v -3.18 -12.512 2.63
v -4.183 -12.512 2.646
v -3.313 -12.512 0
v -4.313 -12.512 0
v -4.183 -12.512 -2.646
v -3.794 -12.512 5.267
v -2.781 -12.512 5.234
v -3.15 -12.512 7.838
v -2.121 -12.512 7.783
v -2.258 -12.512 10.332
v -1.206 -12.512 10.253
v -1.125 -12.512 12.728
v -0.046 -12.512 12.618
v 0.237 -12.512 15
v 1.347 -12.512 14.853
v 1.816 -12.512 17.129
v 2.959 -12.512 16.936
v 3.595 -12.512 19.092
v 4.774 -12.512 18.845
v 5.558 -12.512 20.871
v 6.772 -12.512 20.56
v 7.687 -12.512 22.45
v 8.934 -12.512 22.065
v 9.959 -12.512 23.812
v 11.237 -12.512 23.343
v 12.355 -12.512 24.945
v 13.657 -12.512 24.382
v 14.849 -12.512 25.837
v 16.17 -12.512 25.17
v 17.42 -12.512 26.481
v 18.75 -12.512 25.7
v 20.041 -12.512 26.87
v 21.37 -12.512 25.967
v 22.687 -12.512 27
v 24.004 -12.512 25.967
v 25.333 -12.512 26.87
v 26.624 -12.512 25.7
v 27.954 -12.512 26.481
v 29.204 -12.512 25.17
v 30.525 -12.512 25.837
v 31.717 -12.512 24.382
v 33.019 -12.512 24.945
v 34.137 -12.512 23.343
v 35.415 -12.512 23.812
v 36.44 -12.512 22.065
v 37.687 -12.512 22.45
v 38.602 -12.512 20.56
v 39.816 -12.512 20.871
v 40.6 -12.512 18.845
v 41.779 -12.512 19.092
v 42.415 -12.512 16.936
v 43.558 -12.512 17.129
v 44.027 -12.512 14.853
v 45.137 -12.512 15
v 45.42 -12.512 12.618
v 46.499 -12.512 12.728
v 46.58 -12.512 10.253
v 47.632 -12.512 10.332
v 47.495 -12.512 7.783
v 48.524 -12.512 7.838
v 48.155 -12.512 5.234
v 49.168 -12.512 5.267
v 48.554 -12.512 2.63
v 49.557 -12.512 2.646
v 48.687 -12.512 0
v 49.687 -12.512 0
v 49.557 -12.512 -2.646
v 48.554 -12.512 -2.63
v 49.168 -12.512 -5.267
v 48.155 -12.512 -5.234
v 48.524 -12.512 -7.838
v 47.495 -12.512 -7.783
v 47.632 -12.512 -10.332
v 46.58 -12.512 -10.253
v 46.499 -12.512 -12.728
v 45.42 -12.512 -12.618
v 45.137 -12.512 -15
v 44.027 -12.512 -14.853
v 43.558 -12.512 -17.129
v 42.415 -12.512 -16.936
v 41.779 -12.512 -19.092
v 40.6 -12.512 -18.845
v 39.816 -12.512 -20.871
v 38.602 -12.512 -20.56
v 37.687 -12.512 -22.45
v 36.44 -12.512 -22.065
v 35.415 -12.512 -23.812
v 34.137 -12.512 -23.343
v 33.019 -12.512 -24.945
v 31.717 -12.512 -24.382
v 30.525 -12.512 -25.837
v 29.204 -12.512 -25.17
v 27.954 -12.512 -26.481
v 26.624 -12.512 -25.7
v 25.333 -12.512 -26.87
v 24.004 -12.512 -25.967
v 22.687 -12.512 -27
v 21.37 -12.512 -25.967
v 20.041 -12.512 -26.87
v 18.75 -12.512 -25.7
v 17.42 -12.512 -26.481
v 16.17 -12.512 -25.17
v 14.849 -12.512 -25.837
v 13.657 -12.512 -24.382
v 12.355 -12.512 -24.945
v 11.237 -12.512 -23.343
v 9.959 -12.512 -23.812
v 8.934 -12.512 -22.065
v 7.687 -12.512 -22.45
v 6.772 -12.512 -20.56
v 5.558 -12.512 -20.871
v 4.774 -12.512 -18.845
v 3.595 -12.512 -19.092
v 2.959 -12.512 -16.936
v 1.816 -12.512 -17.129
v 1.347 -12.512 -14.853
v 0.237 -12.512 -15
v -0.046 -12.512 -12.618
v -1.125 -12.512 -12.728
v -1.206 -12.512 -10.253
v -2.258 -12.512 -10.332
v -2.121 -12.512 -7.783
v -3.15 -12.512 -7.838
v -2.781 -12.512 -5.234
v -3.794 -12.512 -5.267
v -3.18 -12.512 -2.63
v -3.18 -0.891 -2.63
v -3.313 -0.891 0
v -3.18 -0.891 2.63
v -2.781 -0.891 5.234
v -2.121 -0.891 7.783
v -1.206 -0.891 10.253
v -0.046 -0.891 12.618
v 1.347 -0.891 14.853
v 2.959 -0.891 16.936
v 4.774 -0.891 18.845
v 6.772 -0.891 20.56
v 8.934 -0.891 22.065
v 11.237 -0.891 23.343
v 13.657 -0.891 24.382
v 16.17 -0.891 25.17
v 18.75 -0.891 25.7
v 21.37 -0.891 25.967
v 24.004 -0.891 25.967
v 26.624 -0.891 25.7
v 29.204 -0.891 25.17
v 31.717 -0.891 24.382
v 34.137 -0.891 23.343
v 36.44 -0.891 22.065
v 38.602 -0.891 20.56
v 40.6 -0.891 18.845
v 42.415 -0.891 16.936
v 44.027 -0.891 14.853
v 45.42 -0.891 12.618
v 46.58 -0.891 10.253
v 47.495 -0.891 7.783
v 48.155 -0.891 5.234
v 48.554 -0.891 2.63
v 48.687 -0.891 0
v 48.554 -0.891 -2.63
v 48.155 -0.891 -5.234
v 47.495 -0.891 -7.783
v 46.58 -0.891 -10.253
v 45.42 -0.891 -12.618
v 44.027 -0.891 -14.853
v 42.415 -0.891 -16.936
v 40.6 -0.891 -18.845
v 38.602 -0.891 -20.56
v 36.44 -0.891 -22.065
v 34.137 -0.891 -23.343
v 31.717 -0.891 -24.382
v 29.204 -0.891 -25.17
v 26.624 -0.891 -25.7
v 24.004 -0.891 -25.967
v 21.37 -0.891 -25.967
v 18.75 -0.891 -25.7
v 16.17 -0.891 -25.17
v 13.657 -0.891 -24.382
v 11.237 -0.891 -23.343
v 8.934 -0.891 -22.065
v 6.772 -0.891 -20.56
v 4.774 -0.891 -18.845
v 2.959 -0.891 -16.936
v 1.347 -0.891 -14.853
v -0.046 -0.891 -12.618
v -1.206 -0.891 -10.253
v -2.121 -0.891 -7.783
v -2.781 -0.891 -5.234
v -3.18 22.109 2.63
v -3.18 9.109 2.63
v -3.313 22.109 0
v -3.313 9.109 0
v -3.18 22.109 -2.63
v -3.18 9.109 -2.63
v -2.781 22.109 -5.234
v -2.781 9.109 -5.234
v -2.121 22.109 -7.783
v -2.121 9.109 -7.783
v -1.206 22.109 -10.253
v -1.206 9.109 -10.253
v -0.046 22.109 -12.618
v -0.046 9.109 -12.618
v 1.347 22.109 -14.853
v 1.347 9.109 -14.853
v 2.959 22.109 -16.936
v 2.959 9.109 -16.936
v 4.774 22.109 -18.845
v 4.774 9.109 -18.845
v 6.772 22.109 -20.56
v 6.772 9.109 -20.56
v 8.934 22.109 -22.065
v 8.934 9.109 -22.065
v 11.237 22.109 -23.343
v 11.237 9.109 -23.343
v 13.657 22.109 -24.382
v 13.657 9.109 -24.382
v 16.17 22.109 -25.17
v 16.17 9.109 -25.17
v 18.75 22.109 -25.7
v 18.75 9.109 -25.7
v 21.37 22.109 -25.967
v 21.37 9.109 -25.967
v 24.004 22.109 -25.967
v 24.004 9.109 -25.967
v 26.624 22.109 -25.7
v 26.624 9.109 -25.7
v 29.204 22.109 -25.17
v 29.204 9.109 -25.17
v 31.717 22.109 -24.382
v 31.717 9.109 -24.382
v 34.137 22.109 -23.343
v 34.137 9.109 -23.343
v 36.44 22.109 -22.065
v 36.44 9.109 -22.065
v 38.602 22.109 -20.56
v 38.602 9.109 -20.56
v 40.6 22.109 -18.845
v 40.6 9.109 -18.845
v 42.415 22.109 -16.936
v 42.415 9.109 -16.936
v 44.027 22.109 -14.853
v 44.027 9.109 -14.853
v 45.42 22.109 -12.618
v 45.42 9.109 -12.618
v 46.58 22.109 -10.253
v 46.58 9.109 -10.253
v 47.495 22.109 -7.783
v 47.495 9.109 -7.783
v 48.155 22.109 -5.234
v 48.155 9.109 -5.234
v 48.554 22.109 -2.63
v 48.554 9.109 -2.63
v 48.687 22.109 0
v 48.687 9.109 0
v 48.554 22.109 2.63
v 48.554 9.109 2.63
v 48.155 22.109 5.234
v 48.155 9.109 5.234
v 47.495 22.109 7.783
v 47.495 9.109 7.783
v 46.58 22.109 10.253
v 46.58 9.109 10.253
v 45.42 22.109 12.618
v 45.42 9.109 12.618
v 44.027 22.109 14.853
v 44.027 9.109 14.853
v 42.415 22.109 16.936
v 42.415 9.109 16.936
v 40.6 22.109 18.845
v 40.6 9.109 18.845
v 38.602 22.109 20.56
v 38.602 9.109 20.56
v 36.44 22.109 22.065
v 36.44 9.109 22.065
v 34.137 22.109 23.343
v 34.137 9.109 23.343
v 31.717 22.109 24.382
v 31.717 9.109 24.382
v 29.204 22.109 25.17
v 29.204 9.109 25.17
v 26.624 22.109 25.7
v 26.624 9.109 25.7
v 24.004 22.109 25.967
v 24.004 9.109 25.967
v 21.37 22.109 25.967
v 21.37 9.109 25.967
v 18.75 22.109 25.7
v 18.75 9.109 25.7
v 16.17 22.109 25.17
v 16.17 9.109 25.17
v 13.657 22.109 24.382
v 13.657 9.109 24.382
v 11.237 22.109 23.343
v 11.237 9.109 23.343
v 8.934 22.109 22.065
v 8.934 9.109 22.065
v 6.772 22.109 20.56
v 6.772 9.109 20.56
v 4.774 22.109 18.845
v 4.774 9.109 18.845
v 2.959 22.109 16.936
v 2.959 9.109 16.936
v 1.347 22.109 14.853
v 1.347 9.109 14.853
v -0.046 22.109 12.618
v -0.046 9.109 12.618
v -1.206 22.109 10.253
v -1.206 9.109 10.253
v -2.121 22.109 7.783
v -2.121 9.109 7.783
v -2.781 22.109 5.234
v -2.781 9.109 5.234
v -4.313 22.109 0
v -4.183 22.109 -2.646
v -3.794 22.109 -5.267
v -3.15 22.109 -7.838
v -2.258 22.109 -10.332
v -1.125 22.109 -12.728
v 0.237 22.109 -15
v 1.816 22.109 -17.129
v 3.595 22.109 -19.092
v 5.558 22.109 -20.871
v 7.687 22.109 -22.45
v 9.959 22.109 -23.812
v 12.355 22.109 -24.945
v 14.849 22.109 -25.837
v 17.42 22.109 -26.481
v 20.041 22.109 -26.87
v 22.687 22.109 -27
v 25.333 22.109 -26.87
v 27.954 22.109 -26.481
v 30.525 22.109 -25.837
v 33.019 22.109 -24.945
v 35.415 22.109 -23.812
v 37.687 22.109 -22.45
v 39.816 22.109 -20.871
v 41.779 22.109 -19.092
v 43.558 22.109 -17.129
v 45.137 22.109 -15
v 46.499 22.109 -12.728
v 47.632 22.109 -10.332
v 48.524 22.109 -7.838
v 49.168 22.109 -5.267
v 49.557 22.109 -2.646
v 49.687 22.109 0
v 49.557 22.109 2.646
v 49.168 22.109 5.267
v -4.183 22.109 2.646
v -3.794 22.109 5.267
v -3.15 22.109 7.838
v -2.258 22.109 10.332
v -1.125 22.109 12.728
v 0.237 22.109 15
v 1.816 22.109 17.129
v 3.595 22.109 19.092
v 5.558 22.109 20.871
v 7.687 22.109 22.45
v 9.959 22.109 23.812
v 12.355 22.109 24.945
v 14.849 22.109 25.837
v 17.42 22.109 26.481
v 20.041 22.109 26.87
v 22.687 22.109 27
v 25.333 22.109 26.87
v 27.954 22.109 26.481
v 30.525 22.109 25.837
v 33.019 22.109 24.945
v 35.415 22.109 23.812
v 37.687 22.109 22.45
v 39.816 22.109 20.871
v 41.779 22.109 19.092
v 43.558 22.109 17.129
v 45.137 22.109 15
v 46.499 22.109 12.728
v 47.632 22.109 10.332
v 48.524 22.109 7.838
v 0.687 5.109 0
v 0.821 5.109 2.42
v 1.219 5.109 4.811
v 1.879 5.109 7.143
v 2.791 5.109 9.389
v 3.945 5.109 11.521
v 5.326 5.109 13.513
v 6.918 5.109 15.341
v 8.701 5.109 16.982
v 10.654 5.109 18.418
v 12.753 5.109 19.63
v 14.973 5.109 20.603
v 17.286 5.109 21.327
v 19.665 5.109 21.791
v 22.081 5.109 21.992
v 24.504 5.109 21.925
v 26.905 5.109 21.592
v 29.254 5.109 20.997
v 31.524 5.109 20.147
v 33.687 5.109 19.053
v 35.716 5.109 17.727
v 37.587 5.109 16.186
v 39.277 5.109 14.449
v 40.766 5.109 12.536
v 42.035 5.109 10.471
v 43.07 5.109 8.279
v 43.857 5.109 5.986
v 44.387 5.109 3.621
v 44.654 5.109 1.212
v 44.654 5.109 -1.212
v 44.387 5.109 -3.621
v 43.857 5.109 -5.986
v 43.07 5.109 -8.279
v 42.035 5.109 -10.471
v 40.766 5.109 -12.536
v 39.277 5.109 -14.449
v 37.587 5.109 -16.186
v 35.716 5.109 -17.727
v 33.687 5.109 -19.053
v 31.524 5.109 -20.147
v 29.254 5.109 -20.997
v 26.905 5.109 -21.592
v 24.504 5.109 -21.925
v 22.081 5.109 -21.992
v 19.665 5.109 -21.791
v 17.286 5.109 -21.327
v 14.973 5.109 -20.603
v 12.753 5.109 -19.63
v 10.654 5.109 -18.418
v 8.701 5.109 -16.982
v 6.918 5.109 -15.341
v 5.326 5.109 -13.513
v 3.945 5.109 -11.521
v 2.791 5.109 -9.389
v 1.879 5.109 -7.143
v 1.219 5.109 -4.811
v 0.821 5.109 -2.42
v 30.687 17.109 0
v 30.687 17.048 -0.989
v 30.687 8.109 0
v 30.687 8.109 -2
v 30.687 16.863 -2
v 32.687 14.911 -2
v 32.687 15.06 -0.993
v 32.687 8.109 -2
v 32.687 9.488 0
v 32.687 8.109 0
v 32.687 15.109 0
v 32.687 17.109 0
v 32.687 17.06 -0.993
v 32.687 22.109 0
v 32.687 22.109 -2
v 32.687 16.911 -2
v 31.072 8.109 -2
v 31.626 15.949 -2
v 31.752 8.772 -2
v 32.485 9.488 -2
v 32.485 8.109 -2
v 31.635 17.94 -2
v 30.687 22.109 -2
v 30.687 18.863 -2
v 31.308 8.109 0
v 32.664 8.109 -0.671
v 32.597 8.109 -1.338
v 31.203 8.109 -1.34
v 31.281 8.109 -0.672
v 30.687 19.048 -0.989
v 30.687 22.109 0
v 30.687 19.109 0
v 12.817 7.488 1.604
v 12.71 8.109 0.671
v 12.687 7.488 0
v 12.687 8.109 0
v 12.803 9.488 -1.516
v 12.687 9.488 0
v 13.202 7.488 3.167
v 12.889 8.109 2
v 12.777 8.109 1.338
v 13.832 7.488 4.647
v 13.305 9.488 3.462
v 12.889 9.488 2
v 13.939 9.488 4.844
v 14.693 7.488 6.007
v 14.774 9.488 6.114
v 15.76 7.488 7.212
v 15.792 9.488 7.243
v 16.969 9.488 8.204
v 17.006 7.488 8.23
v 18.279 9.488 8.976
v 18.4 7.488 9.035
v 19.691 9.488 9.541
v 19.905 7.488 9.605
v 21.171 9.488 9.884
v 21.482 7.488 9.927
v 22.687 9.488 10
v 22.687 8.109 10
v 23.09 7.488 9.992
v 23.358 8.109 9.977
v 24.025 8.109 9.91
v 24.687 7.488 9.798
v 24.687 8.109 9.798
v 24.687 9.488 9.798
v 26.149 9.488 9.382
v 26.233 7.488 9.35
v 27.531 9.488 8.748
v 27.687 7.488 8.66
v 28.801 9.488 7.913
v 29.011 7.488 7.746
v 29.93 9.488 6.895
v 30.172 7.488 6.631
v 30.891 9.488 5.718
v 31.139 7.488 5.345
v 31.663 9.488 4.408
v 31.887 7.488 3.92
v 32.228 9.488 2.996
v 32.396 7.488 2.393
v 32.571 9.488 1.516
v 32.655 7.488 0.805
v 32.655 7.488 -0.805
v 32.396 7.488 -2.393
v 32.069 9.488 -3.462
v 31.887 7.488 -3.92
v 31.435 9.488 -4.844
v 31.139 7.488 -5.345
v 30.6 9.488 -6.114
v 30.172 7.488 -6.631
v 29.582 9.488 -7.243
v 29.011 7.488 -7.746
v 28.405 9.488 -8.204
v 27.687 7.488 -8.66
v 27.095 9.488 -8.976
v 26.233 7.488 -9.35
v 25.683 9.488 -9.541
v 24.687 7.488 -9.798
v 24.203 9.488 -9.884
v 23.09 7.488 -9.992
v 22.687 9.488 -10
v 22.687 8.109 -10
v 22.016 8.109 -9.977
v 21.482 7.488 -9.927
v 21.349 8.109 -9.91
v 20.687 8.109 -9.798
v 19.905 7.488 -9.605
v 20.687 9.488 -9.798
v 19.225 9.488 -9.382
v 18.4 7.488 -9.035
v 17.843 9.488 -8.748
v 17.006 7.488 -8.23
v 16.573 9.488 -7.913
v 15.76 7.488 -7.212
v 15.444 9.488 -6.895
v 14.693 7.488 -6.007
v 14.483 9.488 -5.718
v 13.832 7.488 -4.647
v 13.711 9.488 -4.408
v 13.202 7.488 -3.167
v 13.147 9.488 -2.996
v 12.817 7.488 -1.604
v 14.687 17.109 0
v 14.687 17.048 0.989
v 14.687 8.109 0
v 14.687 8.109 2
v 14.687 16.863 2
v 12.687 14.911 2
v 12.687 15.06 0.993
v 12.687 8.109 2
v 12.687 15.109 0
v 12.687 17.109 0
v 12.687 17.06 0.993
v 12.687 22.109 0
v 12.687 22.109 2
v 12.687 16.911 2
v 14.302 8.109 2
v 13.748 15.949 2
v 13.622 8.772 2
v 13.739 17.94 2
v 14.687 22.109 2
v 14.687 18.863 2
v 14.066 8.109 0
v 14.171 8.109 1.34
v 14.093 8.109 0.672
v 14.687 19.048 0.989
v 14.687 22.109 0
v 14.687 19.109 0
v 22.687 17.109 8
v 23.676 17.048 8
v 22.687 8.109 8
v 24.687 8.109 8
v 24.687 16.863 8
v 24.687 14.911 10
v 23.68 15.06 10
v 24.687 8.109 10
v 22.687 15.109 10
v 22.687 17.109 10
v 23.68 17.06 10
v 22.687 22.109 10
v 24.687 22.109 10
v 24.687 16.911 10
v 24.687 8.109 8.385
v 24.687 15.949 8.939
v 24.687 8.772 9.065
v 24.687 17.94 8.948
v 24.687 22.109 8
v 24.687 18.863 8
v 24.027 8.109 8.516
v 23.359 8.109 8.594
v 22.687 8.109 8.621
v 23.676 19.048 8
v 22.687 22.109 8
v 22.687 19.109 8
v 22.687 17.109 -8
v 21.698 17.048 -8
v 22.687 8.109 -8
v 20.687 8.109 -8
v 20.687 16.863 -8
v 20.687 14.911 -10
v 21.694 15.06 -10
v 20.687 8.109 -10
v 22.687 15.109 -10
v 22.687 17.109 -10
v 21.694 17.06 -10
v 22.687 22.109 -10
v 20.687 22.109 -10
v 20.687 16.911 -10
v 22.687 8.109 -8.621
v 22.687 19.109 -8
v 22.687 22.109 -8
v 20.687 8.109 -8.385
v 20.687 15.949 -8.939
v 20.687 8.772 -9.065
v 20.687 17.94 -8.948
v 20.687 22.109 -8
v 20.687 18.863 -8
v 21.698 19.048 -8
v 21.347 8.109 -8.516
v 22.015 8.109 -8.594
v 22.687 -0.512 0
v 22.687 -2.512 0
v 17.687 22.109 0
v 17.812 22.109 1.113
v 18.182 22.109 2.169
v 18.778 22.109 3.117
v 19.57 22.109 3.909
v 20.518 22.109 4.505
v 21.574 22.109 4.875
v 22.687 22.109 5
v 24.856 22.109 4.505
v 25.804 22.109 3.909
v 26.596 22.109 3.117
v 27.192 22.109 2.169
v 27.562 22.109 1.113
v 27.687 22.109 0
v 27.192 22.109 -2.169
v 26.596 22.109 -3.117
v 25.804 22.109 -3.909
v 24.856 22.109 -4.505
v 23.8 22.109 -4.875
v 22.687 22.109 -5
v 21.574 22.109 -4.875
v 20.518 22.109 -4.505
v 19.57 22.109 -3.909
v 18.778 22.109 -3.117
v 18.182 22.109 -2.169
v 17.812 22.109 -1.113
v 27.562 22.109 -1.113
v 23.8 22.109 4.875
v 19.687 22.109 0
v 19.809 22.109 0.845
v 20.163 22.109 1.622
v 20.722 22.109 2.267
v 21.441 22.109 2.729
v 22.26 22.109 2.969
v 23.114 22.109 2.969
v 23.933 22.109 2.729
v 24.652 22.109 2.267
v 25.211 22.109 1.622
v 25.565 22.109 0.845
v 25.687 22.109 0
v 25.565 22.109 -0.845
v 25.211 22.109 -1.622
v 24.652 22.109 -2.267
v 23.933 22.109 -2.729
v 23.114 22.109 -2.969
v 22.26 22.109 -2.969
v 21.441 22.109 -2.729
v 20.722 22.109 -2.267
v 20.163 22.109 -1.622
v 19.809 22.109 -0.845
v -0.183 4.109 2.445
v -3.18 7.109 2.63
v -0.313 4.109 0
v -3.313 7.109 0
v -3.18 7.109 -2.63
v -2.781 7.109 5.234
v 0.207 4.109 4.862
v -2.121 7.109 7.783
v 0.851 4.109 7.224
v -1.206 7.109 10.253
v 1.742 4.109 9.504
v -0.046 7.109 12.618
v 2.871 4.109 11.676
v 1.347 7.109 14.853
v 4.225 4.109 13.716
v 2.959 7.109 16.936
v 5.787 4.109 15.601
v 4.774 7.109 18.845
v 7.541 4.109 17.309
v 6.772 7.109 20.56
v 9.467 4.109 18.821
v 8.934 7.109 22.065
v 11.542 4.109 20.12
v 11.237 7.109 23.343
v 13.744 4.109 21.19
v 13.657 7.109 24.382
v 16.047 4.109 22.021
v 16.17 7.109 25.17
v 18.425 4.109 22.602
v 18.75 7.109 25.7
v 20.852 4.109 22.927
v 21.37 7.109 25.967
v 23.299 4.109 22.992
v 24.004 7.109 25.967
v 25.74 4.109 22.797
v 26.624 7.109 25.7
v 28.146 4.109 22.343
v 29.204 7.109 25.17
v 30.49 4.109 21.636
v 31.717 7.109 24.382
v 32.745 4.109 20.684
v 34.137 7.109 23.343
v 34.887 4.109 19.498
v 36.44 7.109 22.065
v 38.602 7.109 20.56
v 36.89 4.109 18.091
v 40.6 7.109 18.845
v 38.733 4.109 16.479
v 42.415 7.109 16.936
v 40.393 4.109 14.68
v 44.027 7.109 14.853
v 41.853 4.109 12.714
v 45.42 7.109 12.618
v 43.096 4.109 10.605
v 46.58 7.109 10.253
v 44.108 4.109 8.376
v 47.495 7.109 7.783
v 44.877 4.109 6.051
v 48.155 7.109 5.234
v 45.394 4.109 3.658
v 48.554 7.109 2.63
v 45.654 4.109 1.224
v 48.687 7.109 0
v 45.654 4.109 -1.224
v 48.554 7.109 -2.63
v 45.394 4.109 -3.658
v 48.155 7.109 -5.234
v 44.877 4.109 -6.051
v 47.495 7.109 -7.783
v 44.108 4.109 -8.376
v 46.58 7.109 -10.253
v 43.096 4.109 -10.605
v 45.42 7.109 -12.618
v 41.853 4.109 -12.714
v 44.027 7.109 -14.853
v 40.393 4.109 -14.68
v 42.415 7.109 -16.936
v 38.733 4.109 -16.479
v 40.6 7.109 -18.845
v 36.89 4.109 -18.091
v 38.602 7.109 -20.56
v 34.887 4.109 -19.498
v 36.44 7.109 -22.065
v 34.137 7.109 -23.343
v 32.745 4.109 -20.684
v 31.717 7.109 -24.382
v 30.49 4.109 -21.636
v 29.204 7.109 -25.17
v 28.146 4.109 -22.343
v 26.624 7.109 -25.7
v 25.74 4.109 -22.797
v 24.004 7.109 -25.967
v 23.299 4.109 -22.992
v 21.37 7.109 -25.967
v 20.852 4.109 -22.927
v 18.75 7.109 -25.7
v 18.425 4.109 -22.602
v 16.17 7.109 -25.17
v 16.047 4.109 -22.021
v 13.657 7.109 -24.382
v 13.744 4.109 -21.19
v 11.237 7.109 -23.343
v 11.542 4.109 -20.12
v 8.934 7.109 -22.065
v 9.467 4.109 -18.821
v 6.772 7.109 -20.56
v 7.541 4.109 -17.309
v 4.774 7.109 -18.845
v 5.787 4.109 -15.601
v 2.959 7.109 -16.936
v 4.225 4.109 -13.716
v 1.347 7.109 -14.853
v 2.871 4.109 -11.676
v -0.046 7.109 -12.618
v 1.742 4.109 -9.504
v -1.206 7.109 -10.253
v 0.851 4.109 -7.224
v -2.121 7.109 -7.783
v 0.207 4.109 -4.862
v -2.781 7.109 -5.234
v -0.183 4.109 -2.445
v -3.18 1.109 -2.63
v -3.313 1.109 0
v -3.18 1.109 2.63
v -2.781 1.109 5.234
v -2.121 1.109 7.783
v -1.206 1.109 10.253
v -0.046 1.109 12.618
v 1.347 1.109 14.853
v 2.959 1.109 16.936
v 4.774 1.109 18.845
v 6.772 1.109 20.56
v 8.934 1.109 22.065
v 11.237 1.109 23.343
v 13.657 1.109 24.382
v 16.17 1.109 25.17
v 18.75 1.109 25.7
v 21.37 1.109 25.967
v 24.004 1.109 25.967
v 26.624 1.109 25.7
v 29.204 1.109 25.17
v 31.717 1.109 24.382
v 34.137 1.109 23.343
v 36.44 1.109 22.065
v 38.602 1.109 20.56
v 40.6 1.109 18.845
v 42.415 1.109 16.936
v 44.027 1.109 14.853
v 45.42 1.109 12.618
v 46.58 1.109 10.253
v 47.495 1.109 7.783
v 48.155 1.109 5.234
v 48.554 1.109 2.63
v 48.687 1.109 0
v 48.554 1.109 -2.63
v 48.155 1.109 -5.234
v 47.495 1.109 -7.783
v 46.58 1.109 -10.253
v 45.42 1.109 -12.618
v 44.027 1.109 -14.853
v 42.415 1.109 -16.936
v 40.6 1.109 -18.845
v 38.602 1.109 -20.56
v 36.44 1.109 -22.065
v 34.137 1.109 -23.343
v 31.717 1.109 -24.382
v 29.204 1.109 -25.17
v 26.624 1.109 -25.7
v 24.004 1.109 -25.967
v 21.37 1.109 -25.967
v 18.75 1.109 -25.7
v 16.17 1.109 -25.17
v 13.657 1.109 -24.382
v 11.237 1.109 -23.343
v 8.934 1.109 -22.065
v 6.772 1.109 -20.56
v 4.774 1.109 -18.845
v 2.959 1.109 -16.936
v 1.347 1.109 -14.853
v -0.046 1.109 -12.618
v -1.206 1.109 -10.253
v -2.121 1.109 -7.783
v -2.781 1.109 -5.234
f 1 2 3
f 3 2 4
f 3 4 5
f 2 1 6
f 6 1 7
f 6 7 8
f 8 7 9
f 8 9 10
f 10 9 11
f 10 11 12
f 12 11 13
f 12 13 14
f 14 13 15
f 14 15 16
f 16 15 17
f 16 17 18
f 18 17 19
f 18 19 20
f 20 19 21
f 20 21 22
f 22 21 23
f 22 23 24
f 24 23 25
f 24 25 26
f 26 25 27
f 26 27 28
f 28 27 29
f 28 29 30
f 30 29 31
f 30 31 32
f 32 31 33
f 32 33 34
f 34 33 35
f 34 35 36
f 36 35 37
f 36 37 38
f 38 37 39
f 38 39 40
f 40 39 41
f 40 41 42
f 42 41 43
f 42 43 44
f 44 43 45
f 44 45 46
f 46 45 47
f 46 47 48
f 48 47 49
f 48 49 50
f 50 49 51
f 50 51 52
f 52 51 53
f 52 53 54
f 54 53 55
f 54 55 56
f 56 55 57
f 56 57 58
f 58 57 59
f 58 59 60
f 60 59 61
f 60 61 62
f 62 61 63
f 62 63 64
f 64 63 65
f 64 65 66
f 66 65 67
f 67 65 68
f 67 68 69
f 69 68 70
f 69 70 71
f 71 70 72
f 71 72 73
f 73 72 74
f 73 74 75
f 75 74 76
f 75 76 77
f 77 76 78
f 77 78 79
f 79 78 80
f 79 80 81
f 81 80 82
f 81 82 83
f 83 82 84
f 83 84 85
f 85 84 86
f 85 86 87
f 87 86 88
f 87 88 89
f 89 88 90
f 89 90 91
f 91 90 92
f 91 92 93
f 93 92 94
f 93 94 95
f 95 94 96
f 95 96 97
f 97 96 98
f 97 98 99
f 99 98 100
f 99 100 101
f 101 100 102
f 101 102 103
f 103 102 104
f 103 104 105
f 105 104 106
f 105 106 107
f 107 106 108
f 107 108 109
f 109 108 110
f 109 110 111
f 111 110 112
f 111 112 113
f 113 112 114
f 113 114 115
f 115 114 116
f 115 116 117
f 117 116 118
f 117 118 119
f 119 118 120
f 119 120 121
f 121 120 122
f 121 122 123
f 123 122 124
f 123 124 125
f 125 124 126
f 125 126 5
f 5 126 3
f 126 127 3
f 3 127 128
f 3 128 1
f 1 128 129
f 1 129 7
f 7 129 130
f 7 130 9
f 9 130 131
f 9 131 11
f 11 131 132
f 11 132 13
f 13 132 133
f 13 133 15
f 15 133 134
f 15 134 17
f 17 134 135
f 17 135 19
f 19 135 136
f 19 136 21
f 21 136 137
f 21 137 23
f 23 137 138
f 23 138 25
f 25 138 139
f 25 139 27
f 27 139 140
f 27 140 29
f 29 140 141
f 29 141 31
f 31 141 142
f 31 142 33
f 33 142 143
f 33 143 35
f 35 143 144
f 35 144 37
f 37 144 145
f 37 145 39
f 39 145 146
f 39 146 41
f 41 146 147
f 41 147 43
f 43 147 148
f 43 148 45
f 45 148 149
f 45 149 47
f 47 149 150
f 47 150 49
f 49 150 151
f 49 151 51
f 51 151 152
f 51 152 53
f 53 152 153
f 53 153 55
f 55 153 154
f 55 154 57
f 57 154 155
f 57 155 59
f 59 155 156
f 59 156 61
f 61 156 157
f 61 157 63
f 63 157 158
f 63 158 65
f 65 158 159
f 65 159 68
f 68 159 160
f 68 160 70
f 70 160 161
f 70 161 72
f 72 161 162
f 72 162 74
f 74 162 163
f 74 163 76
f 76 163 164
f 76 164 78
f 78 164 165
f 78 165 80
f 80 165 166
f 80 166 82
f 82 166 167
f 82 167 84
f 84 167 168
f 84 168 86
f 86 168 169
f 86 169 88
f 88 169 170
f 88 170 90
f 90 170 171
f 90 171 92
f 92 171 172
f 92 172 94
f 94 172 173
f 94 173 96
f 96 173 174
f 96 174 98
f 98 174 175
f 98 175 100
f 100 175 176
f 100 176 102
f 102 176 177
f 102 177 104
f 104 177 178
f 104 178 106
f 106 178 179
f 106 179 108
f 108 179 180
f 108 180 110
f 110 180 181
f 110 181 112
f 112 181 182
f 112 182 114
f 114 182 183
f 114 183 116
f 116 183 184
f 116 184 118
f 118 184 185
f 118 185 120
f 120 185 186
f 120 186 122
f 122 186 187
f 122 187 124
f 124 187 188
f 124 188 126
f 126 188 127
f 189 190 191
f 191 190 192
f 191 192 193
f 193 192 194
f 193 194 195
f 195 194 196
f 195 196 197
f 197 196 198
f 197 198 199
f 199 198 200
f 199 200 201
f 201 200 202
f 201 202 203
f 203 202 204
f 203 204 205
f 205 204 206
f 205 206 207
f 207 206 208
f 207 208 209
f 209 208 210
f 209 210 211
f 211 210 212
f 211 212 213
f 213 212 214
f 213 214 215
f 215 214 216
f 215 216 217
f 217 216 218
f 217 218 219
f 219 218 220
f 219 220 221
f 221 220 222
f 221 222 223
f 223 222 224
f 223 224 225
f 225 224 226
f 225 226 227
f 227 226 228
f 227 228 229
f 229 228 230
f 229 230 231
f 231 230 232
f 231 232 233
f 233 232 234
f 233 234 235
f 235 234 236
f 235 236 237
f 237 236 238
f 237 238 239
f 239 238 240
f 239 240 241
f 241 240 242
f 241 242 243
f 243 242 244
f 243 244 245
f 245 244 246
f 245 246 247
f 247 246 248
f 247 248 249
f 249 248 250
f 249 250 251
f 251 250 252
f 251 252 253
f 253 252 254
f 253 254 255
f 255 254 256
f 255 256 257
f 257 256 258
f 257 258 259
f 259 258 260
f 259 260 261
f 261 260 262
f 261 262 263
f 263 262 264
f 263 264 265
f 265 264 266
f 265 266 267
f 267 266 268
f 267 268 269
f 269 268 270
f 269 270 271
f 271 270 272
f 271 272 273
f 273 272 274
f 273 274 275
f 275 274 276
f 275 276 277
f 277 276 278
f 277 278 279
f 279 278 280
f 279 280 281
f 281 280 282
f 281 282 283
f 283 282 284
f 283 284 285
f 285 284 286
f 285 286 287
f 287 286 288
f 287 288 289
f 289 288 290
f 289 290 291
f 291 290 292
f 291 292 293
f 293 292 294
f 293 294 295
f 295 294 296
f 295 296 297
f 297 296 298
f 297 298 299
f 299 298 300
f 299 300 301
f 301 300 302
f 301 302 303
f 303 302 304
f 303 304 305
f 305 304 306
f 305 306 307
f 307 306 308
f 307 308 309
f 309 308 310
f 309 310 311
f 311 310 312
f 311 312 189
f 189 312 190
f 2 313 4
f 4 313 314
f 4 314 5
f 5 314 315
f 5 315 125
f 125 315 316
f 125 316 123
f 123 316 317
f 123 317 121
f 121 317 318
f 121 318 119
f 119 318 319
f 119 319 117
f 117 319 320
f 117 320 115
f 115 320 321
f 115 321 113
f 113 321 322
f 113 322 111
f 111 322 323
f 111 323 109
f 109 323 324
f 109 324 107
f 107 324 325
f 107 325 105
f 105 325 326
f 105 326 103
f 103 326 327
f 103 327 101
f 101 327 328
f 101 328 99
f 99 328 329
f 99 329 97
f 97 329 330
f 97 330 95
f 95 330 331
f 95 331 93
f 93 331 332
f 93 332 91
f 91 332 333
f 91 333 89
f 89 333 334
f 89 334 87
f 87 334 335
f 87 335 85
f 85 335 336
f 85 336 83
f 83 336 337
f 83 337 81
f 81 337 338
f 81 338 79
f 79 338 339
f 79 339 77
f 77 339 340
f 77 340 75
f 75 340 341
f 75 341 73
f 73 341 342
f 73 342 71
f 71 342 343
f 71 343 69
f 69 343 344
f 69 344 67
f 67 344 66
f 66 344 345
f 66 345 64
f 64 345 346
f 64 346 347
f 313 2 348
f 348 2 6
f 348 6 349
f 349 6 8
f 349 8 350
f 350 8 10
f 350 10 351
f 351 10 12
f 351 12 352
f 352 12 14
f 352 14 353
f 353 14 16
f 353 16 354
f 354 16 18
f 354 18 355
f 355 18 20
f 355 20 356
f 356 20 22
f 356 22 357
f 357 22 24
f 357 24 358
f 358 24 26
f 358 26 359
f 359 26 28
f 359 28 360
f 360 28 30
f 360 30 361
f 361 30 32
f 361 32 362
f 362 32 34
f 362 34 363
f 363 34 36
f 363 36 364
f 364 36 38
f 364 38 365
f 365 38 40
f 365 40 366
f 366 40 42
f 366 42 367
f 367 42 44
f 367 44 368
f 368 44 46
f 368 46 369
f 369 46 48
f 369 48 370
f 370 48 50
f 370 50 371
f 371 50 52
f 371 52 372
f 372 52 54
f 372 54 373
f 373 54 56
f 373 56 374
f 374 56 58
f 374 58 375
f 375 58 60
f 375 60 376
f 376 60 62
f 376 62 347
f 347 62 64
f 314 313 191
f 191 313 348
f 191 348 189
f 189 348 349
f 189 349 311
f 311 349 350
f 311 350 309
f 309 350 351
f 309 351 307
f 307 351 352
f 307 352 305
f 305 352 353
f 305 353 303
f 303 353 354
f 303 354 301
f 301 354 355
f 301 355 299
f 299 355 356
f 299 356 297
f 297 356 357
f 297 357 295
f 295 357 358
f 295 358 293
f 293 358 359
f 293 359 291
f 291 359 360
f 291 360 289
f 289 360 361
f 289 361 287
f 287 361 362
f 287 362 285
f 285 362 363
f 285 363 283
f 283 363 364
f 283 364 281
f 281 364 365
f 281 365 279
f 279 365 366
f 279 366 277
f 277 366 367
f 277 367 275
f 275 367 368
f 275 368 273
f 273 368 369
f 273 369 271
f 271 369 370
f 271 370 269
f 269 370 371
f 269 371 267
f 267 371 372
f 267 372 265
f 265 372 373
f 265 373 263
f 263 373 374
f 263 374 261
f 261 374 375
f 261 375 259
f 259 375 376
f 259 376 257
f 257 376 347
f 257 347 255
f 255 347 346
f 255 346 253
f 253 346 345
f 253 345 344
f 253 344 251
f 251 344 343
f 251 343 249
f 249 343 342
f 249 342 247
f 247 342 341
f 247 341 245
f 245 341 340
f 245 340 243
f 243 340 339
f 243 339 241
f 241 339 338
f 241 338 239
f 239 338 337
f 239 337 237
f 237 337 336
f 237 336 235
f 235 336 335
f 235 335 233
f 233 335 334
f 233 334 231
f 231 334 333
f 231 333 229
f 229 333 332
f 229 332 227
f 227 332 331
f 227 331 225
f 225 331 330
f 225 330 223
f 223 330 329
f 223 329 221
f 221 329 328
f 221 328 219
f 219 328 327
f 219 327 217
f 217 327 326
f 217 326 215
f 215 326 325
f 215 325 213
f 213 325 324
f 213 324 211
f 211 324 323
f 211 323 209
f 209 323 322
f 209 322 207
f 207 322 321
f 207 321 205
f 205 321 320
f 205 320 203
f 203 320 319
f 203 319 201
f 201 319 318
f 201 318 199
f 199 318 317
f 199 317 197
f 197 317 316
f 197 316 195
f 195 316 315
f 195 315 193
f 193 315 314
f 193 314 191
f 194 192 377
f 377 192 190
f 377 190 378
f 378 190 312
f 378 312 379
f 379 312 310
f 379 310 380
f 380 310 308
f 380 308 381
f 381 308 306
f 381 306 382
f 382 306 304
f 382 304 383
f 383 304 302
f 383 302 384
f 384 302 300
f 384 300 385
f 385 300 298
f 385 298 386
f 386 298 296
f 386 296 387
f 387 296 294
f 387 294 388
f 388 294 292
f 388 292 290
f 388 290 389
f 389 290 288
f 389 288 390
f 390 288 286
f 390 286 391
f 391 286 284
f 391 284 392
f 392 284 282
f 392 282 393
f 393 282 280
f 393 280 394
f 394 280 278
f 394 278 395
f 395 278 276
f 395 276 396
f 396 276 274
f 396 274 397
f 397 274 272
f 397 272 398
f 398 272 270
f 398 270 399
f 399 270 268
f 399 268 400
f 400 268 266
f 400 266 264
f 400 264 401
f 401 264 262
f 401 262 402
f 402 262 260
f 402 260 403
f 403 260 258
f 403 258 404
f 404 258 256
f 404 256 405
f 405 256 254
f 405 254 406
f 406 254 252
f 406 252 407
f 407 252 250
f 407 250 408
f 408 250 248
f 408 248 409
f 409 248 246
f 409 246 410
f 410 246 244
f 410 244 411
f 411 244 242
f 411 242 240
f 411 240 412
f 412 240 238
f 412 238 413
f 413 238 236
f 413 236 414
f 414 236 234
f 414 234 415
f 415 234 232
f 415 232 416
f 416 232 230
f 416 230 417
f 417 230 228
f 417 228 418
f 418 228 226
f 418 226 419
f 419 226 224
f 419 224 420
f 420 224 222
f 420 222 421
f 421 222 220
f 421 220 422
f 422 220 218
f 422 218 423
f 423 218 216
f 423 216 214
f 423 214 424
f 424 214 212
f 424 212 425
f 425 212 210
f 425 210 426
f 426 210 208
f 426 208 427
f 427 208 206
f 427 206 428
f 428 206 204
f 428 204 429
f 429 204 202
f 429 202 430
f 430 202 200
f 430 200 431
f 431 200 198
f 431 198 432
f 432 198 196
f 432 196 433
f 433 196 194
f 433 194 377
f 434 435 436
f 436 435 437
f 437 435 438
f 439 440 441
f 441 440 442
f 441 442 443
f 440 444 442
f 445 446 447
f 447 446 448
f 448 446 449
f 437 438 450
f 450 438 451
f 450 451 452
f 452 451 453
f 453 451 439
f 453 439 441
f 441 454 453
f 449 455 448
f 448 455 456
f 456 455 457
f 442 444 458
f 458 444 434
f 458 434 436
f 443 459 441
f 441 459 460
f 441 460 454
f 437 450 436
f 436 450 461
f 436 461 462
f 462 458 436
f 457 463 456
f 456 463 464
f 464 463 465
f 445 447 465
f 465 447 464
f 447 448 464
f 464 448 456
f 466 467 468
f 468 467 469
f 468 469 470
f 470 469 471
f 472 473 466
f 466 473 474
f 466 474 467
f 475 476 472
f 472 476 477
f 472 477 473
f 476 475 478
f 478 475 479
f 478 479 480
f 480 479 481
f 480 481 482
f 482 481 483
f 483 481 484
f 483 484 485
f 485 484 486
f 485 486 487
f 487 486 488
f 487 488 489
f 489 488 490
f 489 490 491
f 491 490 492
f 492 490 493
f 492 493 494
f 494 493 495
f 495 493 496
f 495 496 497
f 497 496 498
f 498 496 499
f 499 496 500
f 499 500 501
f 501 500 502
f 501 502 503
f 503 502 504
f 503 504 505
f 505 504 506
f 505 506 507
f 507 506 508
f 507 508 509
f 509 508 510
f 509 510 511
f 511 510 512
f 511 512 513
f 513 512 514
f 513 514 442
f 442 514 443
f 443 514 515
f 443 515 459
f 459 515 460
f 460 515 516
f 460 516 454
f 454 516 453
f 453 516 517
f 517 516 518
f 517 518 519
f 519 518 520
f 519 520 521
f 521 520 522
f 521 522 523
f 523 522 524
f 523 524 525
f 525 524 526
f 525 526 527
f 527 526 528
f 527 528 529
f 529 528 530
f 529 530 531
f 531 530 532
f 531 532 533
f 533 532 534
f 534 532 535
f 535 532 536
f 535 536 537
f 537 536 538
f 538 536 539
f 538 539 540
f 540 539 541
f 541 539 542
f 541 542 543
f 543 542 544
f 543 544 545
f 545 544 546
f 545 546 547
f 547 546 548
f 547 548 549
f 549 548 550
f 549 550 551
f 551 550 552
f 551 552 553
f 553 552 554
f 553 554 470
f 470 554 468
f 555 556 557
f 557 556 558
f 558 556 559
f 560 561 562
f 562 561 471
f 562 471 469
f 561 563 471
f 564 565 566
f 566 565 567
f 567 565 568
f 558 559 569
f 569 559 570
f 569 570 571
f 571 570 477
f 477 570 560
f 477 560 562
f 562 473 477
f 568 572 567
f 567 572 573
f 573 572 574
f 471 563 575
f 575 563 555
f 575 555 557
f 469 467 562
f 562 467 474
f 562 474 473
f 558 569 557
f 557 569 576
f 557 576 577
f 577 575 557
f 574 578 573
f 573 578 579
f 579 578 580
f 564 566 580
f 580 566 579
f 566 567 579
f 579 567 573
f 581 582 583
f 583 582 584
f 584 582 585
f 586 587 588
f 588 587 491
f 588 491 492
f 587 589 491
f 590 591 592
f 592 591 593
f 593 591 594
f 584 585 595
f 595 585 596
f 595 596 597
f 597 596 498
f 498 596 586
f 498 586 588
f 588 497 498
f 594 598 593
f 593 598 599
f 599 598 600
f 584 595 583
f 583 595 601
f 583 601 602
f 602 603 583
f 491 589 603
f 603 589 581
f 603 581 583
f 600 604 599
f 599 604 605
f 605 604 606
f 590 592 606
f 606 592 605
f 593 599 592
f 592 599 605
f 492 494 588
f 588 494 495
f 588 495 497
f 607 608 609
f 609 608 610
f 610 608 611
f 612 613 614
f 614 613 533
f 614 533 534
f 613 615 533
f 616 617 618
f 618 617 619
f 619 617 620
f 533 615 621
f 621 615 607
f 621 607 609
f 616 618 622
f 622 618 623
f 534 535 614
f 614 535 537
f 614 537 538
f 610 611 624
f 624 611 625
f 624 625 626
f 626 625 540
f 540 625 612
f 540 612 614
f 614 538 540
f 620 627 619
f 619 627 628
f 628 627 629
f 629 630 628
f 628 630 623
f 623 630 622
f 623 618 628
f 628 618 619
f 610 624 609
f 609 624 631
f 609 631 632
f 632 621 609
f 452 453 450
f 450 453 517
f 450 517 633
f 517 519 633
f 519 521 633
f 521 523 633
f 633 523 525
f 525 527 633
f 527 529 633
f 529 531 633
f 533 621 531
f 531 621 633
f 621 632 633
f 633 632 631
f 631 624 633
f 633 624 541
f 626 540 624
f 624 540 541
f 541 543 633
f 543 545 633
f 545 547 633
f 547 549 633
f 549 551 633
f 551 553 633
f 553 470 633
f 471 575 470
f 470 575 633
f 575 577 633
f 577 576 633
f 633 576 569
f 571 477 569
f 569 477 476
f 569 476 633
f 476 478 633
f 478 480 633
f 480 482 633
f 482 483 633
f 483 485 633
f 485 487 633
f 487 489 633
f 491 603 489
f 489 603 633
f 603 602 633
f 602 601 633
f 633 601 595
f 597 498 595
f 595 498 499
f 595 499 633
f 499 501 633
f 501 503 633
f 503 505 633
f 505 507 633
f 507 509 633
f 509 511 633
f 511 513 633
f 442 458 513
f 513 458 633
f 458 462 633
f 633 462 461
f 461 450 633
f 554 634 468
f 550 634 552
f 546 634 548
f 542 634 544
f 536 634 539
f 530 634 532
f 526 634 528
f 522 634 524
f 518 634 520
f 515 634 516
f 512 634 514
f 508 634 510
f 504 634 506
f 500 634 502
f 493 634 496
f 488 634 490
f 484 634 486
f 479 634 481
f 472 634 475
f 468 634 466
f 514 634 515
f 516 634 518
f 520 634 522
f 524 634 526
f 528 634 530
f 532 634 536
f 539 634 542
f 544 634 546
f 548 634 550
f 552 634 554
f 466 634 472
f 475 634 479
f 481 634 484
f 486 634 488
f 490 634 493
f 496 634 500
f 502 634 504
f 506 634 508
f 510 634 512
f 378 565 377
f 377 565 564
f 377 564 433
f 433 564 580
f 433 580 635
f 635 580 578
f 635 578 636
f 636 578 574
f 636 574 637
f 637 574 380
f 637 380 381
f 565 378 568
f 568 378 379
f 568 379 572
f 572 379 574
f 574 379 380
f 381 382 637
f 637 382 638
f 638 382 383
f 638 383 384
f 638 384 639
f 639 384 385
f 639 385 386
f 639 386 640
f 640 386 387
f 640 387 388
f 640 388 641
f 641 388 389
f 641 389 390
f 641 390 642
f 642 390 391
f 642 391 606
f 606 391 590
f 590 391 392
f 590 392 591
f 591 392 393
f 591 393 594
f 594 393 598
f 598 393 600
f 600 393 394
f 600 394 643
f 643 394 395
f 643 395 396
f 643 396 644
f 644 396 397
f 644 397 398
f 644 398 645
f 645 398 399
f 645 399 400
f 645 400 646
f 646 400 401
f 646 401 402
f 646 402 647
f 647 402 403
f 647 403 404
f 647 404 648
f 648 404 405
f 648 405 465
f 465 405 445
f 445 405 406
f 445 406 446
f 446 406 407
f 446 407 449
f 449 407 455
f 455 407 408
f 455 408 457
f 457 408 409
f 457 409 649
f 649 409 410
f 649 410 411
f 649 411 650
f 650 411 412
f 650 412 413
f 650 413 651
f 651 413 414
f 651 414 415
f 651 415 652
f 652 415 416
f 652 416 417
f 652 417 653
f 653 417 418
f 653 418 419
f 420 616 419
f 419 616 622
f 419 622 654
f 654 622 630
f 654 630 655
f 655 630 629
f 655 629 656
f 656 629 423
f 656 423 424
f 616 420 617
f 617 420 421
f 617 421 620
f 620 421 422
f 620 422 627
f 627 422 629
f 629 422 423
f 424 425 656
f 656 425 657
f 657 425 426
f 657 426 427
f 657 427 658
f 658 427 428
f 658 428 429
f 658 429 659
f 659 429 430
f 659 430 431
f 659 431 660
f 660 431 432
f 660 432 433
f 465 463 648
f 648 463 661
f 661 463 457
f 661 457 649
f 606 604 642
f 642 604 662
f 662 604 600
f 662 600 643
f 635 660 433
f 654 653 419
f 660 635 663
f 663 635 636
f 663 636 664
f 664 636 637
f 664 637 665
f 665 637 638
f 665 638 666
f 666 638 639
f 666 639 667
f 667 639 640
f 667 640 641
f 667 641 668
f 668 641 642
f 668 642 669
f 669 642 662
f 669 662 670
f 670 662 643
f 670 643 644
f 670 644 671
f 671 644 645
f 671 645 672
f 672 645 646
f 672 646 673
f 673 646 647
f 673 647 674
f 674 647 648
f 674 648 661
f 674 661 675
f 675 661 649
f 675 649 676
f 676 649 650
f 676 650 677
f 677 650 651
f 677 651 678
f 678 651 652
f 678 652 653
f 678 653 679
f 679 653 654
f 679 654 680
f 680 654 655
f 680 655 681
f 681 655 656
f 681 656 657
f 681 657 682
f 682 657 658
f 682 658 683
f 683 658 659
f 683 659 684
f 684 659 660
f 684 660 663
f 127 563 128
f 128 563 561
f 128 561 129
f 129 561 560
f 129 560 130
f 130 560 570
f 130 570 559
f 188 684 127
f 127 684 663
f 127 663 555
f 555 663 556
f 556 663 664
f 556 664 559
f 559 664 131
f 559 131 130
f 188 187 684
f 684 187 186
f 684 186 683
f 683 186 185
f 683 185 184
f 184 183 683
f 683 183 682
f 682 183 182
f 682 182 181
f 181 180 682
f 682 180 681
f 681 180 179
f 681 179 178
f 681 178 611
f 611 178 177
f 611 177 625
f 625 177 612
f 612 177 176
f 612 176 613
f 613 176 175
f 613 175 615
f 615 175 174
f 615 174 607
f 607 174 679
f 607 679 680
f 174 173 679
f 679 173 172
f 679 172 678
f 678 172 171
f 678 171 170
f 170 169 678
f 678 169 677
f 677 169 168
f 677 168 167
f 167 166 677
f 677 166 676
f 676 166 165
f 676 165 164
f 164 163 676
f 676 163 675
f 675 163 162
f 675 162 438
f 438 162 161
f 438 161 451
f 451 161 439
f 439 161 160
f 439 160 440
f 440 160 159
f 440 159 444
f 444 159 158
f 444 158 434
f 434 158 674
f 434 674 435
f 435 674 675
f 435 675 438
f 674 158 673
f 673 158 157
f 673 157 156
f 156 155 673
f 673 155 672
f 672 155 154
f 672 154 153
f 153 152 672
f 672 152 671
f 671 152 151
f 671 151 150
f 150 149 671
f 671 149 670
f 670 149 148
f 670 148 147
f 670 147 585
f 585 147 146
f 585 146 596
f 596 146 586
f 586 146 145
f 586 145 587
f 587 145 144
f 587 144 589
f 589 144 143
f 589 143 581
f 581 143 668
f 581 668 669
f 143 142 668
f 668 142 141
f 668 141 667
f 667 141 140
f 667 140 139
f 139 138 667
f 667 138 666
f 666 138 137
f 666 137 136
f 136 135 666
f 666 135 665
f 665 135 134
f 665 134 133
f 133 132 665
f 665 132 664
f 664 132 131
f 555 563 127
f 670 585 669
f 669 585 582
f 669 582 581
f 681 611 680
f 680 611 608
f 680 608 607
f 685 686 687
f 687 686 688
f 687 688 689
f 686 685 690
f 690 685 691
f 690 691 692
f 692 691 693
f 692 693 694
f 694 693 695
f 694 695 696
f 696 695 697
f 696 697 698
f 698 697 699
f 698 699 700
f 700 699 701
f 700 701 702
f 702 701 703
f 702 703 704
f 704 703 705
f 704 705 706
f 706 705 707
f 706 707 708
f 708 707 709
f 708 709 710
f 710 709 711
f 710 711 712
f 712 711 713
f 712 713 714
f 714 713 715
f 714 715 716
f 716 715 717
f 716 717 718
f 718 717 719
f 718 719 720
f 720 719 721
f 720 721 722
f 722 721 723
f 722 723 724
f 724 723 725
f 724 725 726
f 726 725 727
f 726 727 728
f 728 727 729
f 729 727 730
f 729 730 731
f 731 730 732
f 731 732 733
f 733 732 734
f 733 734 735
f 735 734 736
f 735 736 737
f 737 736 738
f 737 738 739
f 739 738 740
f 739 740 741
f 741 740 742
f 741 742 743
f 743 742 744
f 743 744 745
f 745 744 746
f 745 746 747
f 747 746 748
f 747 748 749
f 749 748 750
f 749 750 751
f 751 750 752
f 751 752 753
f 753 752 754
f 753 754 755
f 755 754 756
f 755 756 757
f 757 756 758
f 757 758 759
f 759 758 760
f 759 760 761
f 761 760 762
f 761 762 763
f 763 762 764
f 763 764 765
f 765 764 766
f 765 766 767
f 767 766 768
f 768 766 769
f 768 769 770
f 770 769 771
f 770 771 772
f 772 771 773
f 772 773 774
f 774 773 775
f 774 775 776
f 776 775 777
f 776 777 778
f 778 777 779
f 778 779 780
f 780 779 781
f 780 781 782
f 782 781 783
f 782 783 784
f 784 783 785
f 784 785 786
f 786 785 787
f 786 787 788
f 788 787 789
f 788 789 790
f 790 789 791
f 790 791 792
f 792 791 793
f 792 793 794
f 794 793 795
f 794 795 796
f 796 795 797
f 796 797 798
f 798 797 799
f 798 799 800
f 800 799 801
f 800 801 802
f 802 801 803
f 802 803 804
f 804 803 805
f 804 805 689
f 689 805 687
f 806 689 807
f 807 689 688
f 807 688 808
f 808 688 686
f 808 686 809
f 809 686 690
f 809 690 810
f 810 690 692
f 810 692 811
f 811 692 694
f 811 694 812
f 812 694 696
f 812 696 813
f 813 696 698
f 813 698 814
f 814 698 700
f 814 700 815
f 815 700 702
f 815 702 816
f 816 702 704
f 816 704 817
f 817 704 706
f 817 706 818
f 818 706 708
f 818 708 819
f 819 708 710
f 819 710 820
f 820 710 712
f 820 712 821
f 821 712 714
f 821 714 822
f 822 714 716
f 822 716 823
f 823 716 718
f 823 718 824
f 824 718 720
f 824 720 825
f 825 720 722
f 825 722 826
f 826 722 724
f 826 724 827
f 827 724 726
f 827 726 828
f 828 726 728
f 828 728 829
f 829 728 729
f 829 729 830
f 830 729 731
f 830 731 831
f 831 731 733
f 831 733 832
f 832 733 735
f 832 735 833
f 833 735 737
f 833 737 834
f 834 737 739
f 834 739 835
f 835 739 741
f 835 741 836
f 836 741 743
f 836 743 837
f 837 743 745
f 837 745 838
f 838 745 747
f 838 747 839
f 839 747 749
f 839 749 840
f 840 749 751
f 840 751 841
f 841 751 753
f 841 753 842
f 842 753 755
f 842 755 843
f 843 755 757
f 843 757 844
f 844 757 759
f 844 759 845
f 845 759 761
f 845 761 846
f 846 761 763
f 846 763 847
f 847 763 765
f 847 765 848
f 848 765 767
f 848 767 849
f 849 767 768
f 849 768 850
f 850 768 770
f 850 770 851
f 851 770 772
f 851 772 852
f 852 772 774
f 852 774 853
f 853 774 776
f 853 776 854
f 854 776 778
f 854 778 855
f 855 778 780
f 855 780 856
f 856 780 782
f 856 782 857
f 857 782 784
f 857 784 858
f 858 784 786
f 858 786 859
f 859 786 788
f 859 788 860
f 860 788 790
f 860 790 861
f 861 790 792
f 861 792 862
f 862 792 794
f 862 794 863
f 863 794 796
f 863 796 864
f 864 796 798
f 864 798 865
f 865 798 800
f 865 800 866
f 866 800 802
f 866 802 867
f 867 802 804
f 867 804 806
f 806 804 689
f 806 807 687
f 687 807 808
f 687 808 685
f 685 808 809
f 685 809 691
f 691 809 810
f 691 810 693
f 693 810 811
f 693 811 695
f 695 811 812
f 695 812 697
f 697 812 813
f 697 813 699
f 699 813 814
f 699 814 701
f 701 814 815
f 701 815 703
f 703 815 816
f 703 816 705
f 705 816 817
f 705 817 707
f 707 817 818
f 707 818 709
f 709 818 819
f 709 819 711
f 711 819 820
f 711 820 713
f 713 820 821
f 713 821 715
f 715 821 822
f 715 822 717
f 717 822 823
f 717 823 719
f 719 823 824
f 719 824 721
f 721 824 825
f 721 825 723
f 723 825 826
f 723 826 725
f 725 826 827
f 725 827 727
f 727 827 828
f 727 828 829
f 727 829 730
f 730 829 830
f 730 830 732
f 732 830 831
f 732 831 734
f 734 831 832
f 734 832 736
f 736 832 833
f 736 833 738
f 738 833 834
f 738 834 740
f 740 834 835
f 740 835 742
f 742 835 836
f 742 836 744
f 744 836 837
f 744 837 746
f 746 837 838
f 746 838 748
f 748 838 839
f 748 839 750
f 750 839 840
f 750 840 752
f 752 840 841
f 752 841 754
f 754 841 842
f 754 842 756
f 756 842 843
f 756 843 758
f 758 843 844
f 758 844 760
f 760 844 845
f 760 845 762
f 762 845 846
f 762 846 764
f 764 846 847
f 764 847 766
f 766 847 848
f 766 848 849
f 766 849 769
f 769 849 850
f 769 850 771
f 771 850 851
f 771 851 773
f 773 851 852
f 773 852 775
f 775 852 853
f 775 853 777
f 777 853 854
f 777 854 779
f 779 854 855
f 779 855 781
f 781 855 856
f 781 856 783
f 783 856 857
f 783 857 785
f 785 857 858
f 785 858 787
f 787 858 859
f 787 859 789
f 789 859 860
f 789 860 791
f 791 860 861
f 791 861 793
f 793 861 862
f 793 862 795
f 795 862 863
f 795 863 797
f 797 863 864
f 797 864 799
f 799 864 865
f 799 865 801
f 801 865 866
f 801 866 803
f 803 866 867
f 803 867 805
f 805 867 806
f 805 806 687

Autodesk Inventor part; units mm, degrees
ref_plane "YZ Plane" through (0, 0, 0) normal (1, 0, 0) x (0, 1, 0)
ref_plane "XZ Plane" through (0, 0, 0) normal (0, 1, 0) x (-1, 0, 0)
ref_plane "XY Plane" through (0, 0, 0) normal (0, 0, 1) x (1, 0, 0)
sketch "Sketch1" plane through (0, 0, 0) normal (0, 0, 1) x (1, 0, 0)
  line L0 (-3.313, 2.109) -> (-3.313, 22.109)
  line L1 (-3.313, 4.109) -> (-3.313, 2.109)
  line L2 (22.687, -0.5116) -> (12.687, 9.4884)
  line L3 (12.687, 9.4884) -> (12.687, 7.4884)
  line L4 (12.687, 7.4884) -> (22.687, -2.5116)
  line L5 (22.687, -2.5116) -> (22.687, -0.5116)
  line L6 (-0.313, 2.109) -> (19.687, 22.109)
  line L7 (19.687, 22.109) -> (17.687, 22.109)
  line L8 (17.687, 22.109) -> (-0.313, 4.109)
  line L9 (12.187, 14.609) -> (13.6012, 16.0232)
  line L10 (-0.313, 2.109) -> (19.687, 22.109)
  line L11 (17.687, 22.109) -> (-0.313, 4.109)
  line L12 (-0.313, 4.109) -> (-0.313, 2.109)
  line L13 (19.687, 22.109) -> (17.687, 22.109)
  line L14 (-0.313, 4.109) -> (-0.313, 2.109)
  line L15 (-0.313, 2.109) -> (19.687, 22.109)
  line L16 (17.687, 22.109) -> (-0.313, 4.109)
  line L17 (-0.313, 4.109) -> (-3.313, 7.109)
  line L18 (-3.313, 22.109) -> (-4.313, 22.109)
  line L19 (-3.313, 7.109) -> (-3.313, 9.109)
  line L20 (-3.313, 9.109) -> (0.687, 5.109)
  line L21 (-3.313, 7.109) -> (-3.313, -2.5116)
  line L22 (-4.313, -2.5116) -> (-4.313, 22.109)
  line L23 (-3.313, 22.109) -> (-3.313, 9.109)
  line L24 (-4.313, -2.5116) -> (-3.313, -2.5116)
  line L25 (-4.313, -2.5116) -> (-4.313, -12.5116)
  line L26 (-4.313, -12.5116) -> (-3.313, -12.5116)
  line L27 (-3.313, -12.5116) -> (-3.313, -2.5116)
  line L28 (-0.313, 2.109) -> (-3.313, -0.891)
  line L29 (-3.313, 1.109) -> (-0.313, 4.109)
  dimension "d20" = 2
  dimension "d21" = 2
  dimension "d50" = 1
  dimension "d67" = 23
  dimension "d69" = 2
  dimension "d71" = 10
revolve "Revolution4" add sketch "Sketch1" angle 360 about axis through (22.687, -2.5116, 0) along (0, 1, 0) contours L8 L7 L6 L12
sketch "Sketch2" plane through (22.687, 22.109, 0) normal (0, 1, 0) x (1, 0, 0)
  circle A0 centre (0, 0) radius 3 projected
  circle A1 centre (0, 0) radius 10
  line L0 (0, 0) -> (10, 0)
  circle A2 centre (0, 0) radius 10 projected
  line L1 (0, 0) -> (0, -10)
  line L2 (0, 0) -> (0, -10)
  line L3 (0, 0) -> (-10, 0)
  line L4 (0, 0) -> (0, 10)
  line L5 (0, -8) -> (0, -10)
  line L6 (0, -8) -> (0, -10)
  line L7 (10, 0) -> (8, 0)
  line L8 (8, 0) -> (8, 2)
  line L9 (8, 2) -> (10, 2)
  line L10 (10, 2) -> (10, 0)
  line L11 (0, 8) -> (0, 10)
  line L12 (-10, 0) -> (-8, 0)
  line L13 (-8, 0) -> (-8, -2)
  line L14 (-8, -2) -> (-10, -2)
  line L15 (-10, -2) -> (-10, 0)
  line L16 (0, 8) -> (0, 10)
  line L17 (0, 8) -> (-2, 8)
  line L18 (-2, 8) -> (-2, 10)
  line L19 (-2, 10) -> (0, 10)
  line L20 (0, 10) -> (0, 8)
  line L21 (0, -10) -> (2, -10)
  line L22 (2, -10) -> (2, -8)
  line L23 (2, -8) -> (0, -8)
  line L24 (0, -8) -> (0, -10)
  point P0 (-22.687, 0)
  dimension "d29" = 20
  dimension "d34" = 2
  dimension "d35" = 2
  dimension "d54" = 2
  dimension "d56" = 2
  dimension "d57" = 2
revolve "Revolution10" add sketch "Sketch1" angle 360 about axis through (22.687, -2.5116, 0) along (0, 1, 0) contours L5 L4 L3 L2
extrude "Extrusion5" add sketch "Sketch2" against normal blind 14 contours L17 L18 A1 L4 | A1 L18 L19
extrude "Extrusion6" add sketch "Sketch2" against normal blind 14 contours L23 L22 A1 L1 | A1 L22 L21
extrude "Extrusion7" add sketch "Sketch2" against normal blind 14 contours L13 L14 A1 L3 | A1 L14 L15
extrude "Extrusion8" add sketch "Sketch2" against normal blind 14 contours L8 L9 A1 L0 | A1 L9 L10
revolve "Revolution11" add sketch "Sketch1" angle 360 about axis through (22.687, -2.5116, 0) along (0, 1, 0) contours L21 L24 L22 L18 L0 | L0 L20 L8 L17
sketch "Sketch3" plane through (22.687, -2.5116, 0) normal (0, -1, 0) x (1, 0, 0)
  point P0 (-22.687, 0)
revolve "Revolution12" add sketch "Sketch1" angle 360 about axis through (22.687, -2.5116, 0) along (0, 1, 0) contours L21 L24 L22 L18 L0 | L29 L12 L28 L21 | L27 L26 L25 L24
properties part number "flyflipfunnel"
